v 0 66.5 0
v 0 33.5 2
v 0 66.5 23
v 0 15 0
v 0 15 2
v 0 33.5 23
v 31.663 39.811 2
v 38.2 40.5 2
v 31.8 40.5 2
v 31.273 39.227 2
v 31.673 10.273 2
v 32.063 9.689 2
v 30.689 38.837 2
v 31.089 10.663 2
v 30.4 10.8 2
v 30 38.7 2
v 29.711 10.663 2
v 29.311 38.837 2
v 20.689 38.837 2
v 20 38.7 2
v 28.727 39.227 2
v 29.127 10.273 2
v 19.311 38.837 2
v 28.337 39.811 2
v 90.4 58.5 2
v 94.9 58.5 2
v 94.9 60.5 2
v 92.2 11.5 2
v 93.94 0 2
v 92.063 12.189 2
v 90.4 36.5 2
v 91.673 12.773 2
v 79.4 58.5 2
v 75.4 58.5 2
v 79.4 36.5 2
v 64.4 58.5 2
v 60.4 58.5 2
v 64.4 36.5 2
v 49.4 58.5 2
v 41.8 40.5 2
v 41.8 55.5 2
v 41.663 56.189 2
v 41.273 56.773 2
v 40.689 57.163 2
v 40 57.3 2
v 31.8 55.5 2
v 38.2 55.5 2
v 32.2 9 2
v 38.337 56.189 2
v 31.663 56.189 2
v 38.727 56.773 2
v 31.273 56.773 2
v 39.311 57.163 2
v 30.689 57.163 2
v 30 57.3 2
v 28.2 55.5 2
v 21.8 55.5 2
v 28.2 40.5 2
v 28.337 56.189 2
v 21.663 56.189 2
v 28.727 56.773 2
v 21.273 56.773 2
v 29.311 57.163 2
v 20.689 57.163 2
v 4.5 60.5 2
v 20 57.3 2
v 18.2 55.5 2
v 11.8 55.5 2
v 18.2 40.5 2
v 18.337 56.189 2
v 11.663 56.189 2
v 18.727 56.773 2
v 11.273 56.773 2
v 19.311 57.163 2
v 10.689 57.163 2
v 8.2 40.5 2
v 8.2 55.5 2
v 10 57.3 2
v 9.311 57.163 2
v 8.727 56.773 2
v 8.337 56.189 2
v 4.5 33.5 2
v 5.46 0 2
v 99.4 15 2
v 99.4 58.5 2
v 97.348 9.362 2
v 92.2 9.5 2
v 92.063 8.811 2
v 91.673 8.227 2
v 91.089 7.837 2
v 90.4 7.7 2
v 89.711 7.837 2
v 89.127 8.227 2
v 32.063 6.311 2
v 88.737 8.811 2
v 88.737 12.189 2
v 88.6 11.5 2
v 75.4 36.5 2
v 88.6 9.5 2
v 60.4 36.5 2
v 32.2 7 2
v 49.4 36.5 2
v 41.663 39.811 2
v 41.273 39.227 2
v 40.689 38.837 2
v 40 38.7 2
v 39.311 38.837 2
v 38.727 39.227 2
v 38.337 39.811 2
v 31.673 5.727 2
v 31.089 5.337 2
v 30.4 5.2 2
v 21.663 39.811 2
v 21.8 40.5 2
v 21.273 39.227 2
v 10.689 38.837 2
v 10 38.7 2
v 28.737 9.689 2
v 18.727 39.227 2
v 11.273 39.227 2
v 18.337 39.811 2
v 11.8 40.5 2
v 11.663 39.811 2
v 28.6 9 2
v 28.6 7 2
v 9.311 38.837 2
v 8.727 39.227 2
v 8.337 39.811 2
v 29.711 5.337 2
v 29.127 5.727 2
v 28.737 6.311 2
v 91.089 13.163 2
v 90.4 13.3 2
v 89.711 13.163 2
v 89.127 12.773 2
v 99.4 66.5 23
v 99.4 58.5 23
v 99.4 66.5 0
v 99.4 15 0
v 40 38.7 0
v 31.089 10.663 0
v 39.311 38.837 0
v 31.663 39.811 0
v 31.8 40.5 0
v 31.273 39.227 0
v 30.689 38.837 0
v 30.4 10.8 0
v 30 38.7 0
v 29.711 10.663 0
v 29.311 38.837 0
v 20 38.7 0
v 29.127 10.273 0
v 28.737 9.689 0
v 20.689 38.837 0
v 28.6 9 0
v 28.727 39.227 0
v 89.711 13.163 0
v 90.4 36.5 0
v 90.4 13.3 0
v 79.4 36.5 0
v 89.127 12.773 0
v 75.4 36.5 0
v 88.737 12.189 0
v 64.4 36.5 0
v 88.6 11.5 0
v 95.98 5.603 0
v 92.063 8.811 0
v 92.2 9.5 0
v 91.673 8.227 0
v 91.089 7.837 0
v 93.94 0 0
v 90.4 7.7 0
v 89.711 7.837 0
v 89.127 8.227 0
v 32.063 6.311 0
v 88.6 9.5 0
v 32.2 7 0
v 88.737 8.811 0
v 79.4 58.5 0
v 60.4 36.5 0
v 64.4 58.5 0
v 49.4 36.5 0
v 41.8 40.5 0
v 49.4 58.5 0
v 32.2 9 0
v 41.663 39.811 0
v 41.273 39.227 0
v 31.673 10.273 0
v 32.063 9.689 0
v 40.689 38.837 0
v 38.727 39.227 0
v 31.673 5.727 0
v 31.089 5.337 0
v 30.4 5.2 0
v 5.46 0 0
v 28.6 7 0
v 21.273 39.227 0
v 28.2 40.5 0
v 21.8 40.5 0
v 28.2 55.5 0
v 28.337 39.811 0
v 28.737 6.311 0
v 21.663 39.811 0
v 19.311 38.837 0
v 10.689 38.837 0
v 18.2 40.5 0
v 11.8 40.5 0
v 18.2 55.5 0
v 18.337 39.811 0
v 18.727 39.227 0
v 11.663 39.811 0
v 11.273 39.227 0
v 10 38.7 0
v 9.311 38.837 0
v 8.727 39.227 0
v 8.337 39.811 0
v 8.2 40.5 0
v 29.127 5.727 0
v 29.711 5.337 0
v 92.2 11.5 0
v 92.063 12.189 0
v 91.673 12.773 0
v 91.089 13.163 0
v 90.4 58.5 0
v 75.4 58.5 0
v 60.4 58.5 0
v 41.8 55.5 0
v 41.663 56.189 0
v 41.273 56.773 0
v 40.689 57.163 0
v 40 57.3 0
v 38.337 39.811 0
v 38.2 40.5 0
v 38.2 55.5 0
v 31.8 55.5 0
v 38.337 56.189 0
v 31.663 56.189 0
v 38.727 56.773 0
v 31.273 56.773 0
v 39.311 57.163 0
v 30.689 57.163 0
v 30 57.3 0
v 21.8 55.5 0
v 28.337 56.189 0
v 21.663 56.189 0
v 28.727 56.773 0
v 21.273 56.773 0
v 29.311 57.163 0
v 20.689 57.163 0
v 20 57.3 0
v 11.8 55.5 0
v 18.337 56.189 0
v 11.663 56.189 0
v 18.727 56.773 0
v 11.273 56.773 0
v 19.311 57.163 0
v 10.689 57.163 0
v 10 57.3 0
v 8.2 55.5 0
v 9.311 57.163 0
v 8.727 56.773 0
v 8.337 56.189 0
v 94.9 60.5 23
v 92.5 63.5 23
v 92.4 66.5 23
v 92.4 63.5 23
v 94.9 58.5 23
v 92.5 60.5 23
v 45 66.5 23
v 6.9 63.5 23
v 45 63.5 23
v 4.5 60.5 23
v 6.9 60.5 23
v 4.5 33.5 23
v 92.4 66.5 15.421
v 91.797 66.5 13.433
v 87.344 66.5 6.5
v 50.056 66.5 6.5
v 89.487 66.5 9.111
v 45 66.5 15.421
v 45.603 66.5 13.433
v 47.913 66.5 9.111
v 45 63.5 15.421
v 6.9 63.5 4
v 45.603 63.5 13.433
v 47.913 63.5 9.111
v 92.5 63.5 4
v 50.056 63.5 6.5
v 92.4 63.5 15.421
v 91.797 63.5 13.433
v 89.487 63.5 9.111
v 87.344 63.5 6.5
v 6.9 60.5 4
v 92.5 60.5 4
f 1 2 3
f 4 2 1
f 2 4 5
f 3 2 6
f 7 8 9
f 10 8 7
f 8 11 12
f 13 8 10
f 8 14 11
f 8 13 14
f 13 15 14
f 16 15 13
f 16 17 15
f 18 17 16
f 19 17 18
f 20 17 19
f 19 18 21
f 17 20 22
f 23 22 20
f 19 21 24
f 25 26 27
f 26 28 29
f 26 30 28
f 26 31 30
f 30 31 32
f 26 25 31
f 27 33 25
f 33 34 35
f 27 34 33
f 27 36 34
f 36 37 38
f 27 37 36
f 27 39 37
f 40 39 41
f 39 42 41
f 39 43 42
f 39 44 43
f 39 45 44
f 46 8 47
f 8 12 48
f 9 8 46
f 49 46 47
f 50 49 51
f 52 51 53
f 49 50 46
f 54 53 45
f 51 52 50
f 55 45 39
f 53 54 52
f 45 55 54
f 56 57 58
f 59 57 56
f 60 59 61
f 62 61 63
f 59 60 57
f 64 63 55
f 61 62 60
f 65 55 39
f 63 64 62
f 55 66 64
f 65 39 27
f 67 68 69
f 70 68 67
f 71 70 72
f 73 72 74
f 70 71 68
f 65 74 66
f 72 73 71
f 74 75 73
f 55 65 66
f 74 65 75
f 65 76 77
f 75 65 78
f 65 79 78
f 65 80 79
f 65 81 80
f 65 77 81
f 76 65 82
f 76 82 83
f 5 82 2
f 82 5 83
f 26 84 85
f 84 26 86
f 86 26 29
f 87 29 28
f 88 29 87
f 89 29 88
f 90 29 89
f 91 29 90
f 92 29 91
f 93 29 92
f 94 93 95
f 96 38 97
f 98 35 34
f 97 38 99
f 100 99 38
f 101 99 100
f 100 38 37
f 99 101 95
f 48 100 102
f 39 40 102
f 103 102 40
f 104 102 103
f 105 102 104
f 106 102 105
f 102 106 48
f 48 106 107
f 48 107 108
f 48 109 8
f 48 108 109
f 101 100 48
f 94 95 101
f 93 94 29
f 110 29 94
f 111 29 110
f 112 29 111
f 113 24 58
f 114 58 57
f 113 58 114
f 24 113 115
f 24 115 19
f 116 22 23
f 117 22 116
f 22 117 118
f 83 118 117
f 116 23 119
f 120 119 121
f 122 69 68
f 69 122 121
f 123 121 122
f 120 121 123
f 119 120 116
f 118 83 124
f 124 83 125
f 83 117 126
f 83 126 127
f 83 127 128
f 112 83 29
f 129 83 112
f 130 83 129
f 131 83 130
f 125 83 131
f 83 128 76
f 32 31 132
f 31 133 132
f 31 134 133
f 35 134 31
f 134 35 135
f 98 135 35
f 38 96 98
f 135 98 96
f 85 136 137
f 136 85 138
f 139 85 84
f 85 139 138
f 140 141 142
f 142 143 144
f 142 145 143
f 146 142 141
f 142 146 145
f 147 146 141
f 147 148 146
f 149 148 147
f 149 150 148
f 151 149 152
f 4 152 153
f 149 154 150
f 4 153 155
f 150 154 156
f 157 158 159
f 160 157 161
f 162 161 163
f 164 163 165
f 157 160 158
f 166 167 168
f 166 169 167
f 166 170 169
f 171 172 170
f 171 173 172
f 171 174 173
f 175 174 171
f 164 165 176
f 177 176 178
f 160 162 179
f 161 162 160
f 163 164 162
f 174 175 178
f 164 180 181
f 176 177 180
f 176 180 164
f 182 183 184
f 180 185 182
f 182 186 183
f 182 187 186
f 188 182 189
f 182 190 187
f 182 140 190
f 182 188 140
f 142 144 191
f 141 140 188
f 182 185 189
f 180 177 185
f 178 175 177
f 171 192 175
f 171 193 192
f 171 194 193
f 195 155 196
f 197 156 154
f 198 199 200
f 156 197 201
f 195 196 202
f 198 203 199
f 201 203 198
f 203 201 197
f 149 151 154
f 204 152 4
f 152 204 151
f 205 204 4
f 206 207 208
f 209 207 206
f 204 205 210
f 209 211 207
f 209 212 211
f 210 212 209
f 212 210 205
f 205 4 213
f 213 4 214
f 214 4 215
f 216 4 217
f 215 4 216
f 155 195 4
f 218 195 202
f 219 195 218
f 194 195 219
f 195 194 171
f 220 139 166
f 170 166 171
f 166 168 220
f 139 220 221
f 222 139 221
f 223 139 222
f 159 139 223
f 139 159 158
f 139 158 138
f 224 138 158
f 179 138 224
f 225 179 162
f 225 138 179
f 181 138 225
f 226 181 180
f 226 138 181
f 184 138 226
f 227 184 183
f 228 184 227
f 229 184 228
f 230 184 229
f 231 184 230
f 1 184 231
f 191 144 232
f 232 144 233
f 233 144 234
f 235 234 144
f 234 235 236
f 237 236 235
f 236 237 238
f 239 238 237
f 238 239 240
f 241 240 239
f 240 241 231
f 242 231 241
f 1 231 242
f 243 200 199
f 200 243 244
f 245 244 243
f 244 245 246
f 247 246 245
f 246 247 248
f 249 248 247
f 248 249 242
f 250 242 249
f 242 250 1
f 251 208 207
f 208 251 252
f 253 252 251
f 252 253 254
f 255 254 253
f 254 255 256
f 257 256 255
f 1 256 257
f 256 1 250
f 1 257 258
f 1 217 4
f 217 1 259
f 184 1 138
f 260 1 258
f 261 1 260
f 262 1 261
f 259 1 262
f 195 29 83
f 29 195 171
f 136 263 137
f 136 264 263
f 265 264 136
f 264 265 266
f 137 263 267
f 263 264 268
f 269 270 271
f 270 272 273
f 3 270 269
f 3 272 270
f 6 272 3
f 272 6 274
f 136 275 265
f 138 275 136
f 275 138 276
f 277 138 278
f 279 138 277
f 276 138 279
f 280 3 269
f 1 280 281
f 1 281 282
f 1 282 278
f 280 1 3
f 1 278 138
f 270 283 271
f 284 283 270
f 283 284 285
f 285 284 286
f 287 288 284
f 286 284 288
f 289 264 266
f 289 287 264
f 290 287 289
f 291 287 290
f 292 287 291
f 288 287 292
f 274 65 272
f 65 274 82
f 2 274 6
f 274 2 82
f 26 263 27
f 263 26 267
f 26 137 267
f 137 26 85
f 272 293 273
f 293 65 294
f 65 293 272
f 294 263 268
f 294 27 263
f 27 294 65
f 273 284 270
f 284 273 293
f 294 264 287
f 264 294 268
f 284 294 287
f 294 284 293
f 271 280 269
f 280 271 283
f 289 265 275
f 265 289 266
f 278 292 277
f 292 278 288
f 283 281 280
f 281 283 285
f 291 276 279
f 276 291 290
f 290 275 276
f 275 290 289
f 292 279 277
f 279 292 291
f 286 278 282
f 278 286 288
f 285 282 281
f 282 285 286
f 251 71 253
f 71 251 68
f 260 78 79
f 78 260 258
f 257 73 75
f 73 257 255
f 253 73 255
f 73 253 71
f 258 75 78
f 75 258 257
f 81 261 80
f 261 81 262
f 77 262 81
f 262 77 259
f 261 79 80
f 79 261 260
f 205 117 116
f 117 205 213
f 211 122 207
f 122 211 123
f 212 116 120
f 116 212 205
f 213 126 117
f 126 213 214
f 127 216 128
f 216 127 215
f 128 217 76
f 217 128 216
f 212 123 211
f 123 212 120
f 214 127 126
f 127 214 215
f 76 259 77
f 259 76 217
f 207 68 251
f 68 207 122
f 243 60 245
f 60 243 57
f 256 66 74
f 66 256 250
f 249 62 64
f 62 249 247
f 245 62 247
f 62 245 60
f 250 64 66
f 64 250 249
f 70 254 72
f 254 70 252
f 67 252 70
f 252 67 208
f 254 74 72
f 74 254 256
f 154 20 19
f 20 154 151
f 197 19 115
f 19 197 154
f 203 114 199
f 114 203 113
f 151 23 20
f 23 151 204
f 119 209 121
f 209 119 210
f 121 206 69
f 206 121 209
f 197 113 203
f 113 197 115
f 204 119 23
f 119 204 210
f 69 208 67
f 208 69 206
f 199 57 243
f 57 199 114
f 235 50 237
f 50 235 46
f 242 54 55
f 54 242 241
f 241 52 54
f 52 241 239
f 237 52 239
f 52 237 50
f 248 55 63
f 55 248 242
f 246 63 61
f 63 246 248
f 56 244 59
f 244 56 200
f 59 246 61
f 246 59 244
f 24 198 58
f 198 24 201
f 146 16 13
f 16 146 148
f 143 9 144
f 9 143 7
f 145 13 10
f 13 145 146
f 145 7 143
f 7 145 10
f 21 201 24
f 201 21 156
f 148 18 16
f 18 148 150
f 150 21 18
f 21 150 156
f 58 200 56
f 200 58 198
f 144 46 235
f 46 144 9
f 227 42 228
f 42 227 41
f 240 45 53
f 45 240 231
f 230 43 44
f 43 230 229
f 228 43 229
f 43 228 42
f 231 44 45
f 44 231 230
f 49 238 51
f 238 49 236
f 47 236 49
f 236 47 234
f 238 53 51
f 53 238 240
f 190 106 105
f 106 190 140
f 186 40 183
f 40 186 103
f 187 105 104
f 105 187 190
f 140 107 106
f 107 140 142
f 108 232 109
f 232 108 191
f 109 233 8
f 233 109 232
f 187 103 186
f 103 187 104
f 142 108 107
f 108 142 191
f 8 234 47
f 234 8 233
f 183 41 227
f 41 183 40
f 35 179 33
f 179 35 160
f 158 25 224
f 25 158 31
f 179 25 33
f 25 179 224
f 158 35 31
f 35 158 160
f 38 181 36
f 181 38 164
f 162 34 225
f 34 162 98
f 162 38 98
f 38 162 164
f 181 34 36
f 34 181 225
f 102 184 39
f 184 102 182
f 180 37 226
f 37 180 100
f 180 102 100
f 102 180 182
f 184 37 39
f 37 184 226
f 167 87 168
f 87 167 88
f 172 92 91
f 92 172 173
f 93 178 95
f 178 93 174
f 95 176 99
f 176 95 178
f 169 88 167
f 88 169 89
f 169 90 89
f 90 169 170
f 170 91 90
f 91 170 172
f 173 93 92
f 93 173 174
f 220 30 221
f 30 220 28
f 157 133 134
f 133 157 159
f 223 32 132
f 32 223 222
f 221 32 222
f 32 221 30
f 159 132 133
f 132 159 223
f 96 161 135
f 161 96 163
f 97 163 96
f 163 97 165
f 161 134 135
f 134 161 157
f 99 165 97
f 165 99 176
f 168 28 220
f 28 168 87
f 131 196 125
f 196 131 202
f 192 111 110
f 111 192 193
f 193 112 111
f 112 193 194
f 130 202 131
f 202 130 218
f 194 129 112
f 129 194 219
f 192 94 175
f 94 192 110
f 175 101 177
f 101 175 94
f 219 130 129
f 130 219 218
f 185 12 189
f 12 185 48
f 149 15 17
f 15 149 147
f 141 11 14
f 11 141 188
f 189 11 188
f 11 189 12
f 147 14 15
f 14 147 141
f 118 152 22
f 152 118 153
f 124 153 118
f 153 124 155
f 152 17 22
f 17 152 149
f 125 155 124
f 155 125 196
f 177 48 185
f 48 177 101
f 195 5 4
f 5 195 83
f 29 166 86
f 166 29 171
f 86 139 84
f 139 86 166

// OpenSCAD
// file: ../../inc/text_RebeliX.scad
// Module names are of the form poly_<inkscape-path-id>().  As a result,
// you can associate a polygon in this OpenSCAD program with the corresponding
// SVG element in the Inkscape document by looking for the XML element with
// the attribute id="inkscape-path-id".

// fudge value is used to ensure that subtracted solids are a tad taller
// in the z dimension than the polygon being subtracted from.  This helps
// keep the resulting .stl file manifold.
fudge = 0.1;

module poly_path3169(h)
{
  scale([25.4/90, -25.4/90, 1]) union()
  {
    linear_extrude(height=h)
      polygon([[74.960940,-30.336910],[74.960940,32.980960],[57.612310,32.980960],[57.612310,-30.336910]]);
  }
}

module poly_path3163(h)
{
  scale([25.4/90, -25.4/90, 1]) union()
  {
    linear_extrude(height=h)
      polygon([[-57.241210,12.663580],[-83.542480,12.663580],[-84.145510,8.999020],[-83.936785,6.702904],[-83.310550,4.453130],[-74.497070,4.453130],[-75.207384,2.200490],[-76.410545,0.591455],[-78.106554,-0.373975],[-80.295410,-0.695800],[-81.843581,-0.523282],[-83.240985,-0.005773],[-84.487624,0.856725],[-85.583500,2.064210],[-86.476452,3.541354],[-87.114271,5.212729],[-87.624510,9.138180],[-87.131669,13.208634],[-86.515593,14.922040],[-85.653080,16.420900],[-84.590546,17.638558],[-83.374347,18.508312],[-82.004486,19.030160],[-80.480960,19.204100],[-79.193740,19.041757],[-77.929706,18.554700],[-75.471190,16.606450],[-65.590820,28.481450],[-69.142321,30.855868],[-72.885155,32.551880],[-76.819321,33.569488],[-80.944820,33.908690],[-85.887918,33.476714],[-90.419325,32.180786],[-94.539042,30.020905],[-98.247070,26.997070],[-101.311495,23.335423],[-103.500369,19.262092],[-104.813691,14.777075],[-105.251460,9.880370],[-104.809342,4.998187],[-103.482975,0.510280],[-101.272357,-3.583352],[-98.177490,-7.282710],[-94.439019,-10.347111],[-90.297559,-12.535976],[-85.753107,-13.849308],[-80.805660,-14.287110],[-75.974212,-13.859454],[-71.545737,-12.576562],[-67.520234,-10.438434],[-63.897700,-7.445070],[-60.904336,-3.825435],[-58.766207,0.191373],[-57.483316,4.605353],[-57.055660,9.416510],[-57.241210,12.663580]]);
  }
}

module poly_path3161(h)
{
  scale([25.4/90, -25.4/90, 1]) union()
  {
    linear_extrude(height=h)
      polygon([[-139.345700,-13.312990],[-139.345700,32.980960],[-158.178710,32.980960],[-158.178710,-30.336910],[-134.011230,-30.336910],[-128.801443,-29.994775],[-124.212065,-28.968459],[-120.243095,-27.257961],[-116.894530,-24.863280],[-113.931608,-21.595888],[-111.815224,-17.916832],[-110.545377,-13.826113],[-110.122070,-9.323730],[-110.646849,-4.711132],[-112.221109,-0.475439],[-114.844850,3.383352],[-118.518070,6.865240],[-107.663570,32.980960],[-127.424320,32.980960],[-136.562500,12.570800],[-136.562500,-3.710940],[-135.078120,-3.710940],[-132.480483,-4.029825],[-130.625022,-4.986543],[-129.511735,-6.581093],[-129.140620,-8.813480],[-129.569720,-10.781990],[-130.856959,-12.188077],[-133.002339,-13.031743],[-136.005860,-13.312990]]);
  }
}

module poly_path3165(h)
{
  scale([25.4/90, -25.4/90, 1]) union()
  {
    linear_extrude(height=h)
      polygon([[-33.676760,-30.336910],[-33.676760,7.561040],[-33.262190,11.599593],[-32.743966,13.186166],[-32.018450,14.484269],[-31.085641,15.493903],[-29.945540,16.215067],[-28.598146,16.647763],[-27.043460,16.791990],[-24.428426,16.310744],[-22.242430,14.866940],[-20.763879,12.738967],[-20.271000,10.205080],[-20.734889,7.601642],[-22.126460,5.450440],[-24.190692,4.006674],[-26.672360,3.525390],[-28.713395,3.942892],[-31.032710,5.195310],[-31.032710,-13.916010],[-26.394040,-14.194330],[-21.675662,-13.753634],[-17.308071,-12.431605],[-13.291265,-10.228244],[-9.625240,-7.143550],[-6.570995,-3.438394],[-4.389379,0.626248],[-3.080394,5.050376],[-2.644040,9.833990],[-3.087641,14.713297],[-4.418369,19.192514],[-6.636225,23.271641],[-9.741210,26.950680],[-13.492759,29.994812],[-17.650175,32.169190],[-22.213461,33.473815],[-27.182620,33.908690],[-32.314164,33.340452],[-37.318110,31.635740],[-41.823436,28.968510],[-45.458980,25.512700],[-47.894289,21.926430],[-49.633791,17.847300],[-50.677491,13.275307],[-51.025390,8.210450],[-51.025390,-30.336910]]);
  }
}

module poly_path3167(h)
{
  scale([25.4/90, -25.4/90, 1]) union()
  {
    linear_extrude(height=h)
      polygon([[50.375980,12.663580],[24.074710,12.663580],[23.471680,8.999020],[23.680405,6.702904],[24.306640,4.453130],[33.120120,4.453130],[32.409806,2.200490],[31.206645,0.591455],[29.510636,-0.373975],[27.321780,-0.695800],[25.773609,-0.523282],[24.376205,-0.005773],[23.129566,0.856725],[22.033690,2.064210],[21.140734,3.541354],[20.502915,5.212729],[19.992680,9.138180],[20.485521,13.208634],[21.101597,14.922040],[21.964110,16.420900],[23.026644,17.638558],[24.242843,18.508312],[25.612704,19.030160],[27.136230,19.204100],[28.423444,19.041757],[29.687476,18.554700],[32.146000,16.606450],[42.026370,28.481450],[38.474864,30.855868],[34.732030,32.551880],[30.797863,33.569488],[26.672360,33.908690],[21.729267,33.476714],[17.197864,32.180786],[13.078148,30.020905],[9.370120,26.997070],[6.305695,23.335423],[4.116820,19.262092],[2.803495,14.777075],[2.365720,9.880370],[2.807843,4.998187],[4.134214,0.510280],[6.344832,-3.583352],[9.439700,-7.282710],[13.178171,-10.347111],[17.319630,-12.535976],[21.864079,-13.849308],[26.811520,-14.287110],[31.642968,-13.859454],[36.071443,-12.576562],[40.096946,-10.438434],[43.719480,-7.445070],[46.712849,-3.825435],[48.850976,0.191373],[50.133866,4.605353],[50.561520,9.416510],[50.375980,12.663580]]);
  }
}

module poly_path3171(h)
{
  scale([25.4/90, -25.4/90, 1]) union()
  {
    linear_extrude(height=h)
      polygon([[102.421880,-13.266600],[102.421880,32.980960],[85.073240,32.980960],[85.073240,-13.266600]]);
    linear_extrude(height=h)
      polygon([[93.793950,-33.908690],[95.497200,-33.753545],[97.081591,-33.288215],[98.547124,-32.512700],[99.893800,-31.427000],[101.020116,-30.129588],[101.824631,-28.719131],[102.307345,-27.195629],[102.468260,-25.559080],[102.316042,-23.831146],[101.859419,-22.265584],[101.098391,-20.862395],[100.032960,-19.621580],[98.729775,-18.606843],[97.255545,-17.882040],[95.610270,-17.447172],[93.793950,-17.302240],[91.977613,-17.447172],[90.332331,-17.882040],[88.858104,-18.606843],[87.554930,-19.621580],[86.489482,-20.862395],[85.728449,-22.265584],[85.271831,-23.831146],[85.119630,-25.559080],[85.280529,-27.195629],[85.763240,-28.719131],[86.567761,-30.129588],[87.694090,-31.427000],[89.040749,-32.512700],[90.506278,-33.288215],[92.090677,-33.753545],[93.793950,-33.908690]]);
  }
}

module poly_path3173(h)
{
  scale([25.4/90, -25.4/90, 1]) union()
  {
    linear_extrude(height=h)
      polygon([[157.622070,-30.336910],[141.154790,0.463870],[158.178710,32.980960],[138.371580,32.980960],[130.578610,17.626950],[123.991700,32.980960],[104.509280,32.980960],[121.904300,0.974120],[105.437010,-30.336910],[125.058590,-30.336910],[132.434080,-15.957030],[138.371580,-30.336910]]);
  }
}

module text_RebeliX(h)
{

poly_path3169(h);
poly_path3163(h);
poly_path3161(h);
poly_path3165(h);
poly_path3167(h);
poly_path3171(h);
poly_path3173(h);
}

text_RebeliX(2);
// file: ../../../configuration.scad
// Vyska vrstvy pro tisknuti dilu [mm]
layer_height = 0.25; //Slic3r->Print Settings->Layers and perimeters->Layer height

// Rezerva prumeru hlavy sroubu [mm]
spare = 1;
// Prumer hlavy M6 sroubu (pricte se rezerva) [mm]
M6_head_diameter = 10.6+spare;
//M6_head_diameter = 12+spare;

// Vyska hlavy M6 sroubu (dulezite pro zapusteni hlavy sroubu do plastu) [mm]
M6_head_height = 3.6;
//M6_head_height = 4.5;

//Prumery sroubu a tyci
M8_smooth_rod_diameter = 8.1;
M8_smooth_rod_diameter_catch = 8.2;
M6_diameter = 6.2;
M6_diamater_horizontal = 6.5;
M3_diameter = 3.2;
M3_diameter_horizontal = 3.2;

//Prumery matic
M3_nut_diameter = 6.8;
M3_nut_diameter_horizontal = 6.8;

//ALU profile parameters
ALU_cut_width = 7.9;
ALU_cut_width_horizontal = 7.9;

// Delka motoru (ovlivni dily pro osy Z a Y)
//SX17-1003LQFE (doporuceno hlavne na osu Z)
//motor_length = 29.5;
//SX17-1003 (doporuceno hlavne na osu Z)
motor_length = 34;
//SX17-1005
//motor_length = 40;
//SX17-0905 - zde je jiz problem s velkou vyskou motoru na ose Z - musi se upravit endstop-holder
//motor_length = 48;

// Sirka vytlacovaneho materialu [mm]
extrusion_width = 0.66; //Slic3r->Print Settings->Advanced->Default extrusion width

/// Vyberte typ remenu ******************************************************

// GT2 
//belt_tooth_distance = 2;
//belt_tooth_ratio = 0.5;

// T2.5
belt_tooth_distance = 2.5;
belt_tooth_ratio = 0.68;
// main file
// RebeliX
//
// Zadni kryt zdroje 12V / 240W zadni cast
// GNU GPL v3
// Martin Neruda <neruda@reprap4u.cz>
// http://www.reprap4u.cz

include <../../../configuration.scad>
use <../../inc/text_RebeliX.scad>

sirka = 98.5+0.9;
sirka_vnitrni = 90.7;
vyska = 23;
hloubka = 45;
tloustka_steny = 2;
plech_tloustka = 2 + 0.4;

hloubka_dilu = hloubka + 2*tloustka_steny + 1.5;

module power_base(){
	translate([0,0,0]) cube([sirka,hloubka_dilu+15,tloustka_steny]);

	translate([0,hloubka_dilu-tloustka_steny+15,0]) cube([sirka,tloustka_steny+1,vyska]);
		
	translate([0,3.5+30,0]) cube([2.5+tloustka_steny,hloubka_dilu-3.5-15,vyska]);
	translate([sirka-2.5-tloustka_steny,3.5+55,0]) cube([2.5+tloustka_steny,hloubka_dilu-3.5-40,vyska]);

	// Vystuzeni krabicky
	translate([1.9,hloubka_dilu+15,0]) rotate([0,0,0]) rotate([0,0,-90]) cube([5,5,vyska]);
	translate([sirka-1.9,hloubka_dilu+15,0]) rotate([0,0,180]) cube([5,5,vyska]);
	translate([1.9,hloubka_dilu-3-tloustka_steny+15,tloustka_steny]) cube([sirka-2*1.9,3,2]);
}

module power_cuts(){
    // Vyrez pro zdroj
	intersection(){
	  translate([45,hloubka_dilu+10,vyska/2 - 5]) cube([sirka-52,19,vyska]);
	  translate([45+(sirka-52)/2,hloubka_dilu+10,vyska]) rotate([90,0,0]) cylinder(r=25,h=19,$fn=32,center=true);
	}
	
	// Otvor pro srouby na pridelani krytu
	translate([sirka - 9, 10.5 - 1,6+tloustka_steny]) cylinder(r=1.8,h=200,$fn=16,center=true);
	translate([sirka - 9, 10.5 + 1,6+tloustka_steny]) cylinder(r=1.8,h=200,$fn=16,center=true);
	translate([sirka - 9, 10.5,0]) cube([2*1.8,2*1,10],center=true); 
	
	translate([sirka - 69, 8 - 1,6+tloustka_steny]) cylinder(r=1.8,h=200,$fn=16,center=true);
	translate([sirka - 69, 8 + 1,6+tloustka_steny]) cylinder(r=1.8,h=200,$fn=16,center=true);
    translate([sirka - 69, 8,0]) cube([2*1.8,2*1,10],center=true); 
	
  fuse_out_s=5;
  fuse_out_w=15;
  fuse_out_h=28;
  fuse_w=11;
  fuse_h=22;
  fuse_c=3;
  
	for(i=[10 : 10 : sirka-fuse_out_w*fuse_c-2*fuse_out_s]){
	  translate([i,hloubka_dilu + 5,0]) cylinder(r=1.8,h=10,$fn=16,center=true);
	  translate([i,hloubka_dilu - 10,0]) cylinder(r=1.8,h=10,$fn=16,center=true);
	  translate([i - 1.8,hloubka_dilu - 10,-5]) cube([1.8*2,15,10]);
	}

  for(i=[1 : fuse_c]){
	  translate([sirka-i*fuse_out_w-fuse_out_s,hloubka_dilu - 14,-5])
    cube([fuse_w,fuse_h,10]);
	}	

	translate([0,15,-0.1]) rotate([0,0,200]) cube([30,20,10]);
	translate([sirka,15,5]) rotate([180,0,-20]) cube([30,20,10]);
	

	
}

module kryt_zdroje_zadni(){
	difference(){
	  power_base();
	  power_cuts();
	}
}

kryt_zdroje_zadni();
